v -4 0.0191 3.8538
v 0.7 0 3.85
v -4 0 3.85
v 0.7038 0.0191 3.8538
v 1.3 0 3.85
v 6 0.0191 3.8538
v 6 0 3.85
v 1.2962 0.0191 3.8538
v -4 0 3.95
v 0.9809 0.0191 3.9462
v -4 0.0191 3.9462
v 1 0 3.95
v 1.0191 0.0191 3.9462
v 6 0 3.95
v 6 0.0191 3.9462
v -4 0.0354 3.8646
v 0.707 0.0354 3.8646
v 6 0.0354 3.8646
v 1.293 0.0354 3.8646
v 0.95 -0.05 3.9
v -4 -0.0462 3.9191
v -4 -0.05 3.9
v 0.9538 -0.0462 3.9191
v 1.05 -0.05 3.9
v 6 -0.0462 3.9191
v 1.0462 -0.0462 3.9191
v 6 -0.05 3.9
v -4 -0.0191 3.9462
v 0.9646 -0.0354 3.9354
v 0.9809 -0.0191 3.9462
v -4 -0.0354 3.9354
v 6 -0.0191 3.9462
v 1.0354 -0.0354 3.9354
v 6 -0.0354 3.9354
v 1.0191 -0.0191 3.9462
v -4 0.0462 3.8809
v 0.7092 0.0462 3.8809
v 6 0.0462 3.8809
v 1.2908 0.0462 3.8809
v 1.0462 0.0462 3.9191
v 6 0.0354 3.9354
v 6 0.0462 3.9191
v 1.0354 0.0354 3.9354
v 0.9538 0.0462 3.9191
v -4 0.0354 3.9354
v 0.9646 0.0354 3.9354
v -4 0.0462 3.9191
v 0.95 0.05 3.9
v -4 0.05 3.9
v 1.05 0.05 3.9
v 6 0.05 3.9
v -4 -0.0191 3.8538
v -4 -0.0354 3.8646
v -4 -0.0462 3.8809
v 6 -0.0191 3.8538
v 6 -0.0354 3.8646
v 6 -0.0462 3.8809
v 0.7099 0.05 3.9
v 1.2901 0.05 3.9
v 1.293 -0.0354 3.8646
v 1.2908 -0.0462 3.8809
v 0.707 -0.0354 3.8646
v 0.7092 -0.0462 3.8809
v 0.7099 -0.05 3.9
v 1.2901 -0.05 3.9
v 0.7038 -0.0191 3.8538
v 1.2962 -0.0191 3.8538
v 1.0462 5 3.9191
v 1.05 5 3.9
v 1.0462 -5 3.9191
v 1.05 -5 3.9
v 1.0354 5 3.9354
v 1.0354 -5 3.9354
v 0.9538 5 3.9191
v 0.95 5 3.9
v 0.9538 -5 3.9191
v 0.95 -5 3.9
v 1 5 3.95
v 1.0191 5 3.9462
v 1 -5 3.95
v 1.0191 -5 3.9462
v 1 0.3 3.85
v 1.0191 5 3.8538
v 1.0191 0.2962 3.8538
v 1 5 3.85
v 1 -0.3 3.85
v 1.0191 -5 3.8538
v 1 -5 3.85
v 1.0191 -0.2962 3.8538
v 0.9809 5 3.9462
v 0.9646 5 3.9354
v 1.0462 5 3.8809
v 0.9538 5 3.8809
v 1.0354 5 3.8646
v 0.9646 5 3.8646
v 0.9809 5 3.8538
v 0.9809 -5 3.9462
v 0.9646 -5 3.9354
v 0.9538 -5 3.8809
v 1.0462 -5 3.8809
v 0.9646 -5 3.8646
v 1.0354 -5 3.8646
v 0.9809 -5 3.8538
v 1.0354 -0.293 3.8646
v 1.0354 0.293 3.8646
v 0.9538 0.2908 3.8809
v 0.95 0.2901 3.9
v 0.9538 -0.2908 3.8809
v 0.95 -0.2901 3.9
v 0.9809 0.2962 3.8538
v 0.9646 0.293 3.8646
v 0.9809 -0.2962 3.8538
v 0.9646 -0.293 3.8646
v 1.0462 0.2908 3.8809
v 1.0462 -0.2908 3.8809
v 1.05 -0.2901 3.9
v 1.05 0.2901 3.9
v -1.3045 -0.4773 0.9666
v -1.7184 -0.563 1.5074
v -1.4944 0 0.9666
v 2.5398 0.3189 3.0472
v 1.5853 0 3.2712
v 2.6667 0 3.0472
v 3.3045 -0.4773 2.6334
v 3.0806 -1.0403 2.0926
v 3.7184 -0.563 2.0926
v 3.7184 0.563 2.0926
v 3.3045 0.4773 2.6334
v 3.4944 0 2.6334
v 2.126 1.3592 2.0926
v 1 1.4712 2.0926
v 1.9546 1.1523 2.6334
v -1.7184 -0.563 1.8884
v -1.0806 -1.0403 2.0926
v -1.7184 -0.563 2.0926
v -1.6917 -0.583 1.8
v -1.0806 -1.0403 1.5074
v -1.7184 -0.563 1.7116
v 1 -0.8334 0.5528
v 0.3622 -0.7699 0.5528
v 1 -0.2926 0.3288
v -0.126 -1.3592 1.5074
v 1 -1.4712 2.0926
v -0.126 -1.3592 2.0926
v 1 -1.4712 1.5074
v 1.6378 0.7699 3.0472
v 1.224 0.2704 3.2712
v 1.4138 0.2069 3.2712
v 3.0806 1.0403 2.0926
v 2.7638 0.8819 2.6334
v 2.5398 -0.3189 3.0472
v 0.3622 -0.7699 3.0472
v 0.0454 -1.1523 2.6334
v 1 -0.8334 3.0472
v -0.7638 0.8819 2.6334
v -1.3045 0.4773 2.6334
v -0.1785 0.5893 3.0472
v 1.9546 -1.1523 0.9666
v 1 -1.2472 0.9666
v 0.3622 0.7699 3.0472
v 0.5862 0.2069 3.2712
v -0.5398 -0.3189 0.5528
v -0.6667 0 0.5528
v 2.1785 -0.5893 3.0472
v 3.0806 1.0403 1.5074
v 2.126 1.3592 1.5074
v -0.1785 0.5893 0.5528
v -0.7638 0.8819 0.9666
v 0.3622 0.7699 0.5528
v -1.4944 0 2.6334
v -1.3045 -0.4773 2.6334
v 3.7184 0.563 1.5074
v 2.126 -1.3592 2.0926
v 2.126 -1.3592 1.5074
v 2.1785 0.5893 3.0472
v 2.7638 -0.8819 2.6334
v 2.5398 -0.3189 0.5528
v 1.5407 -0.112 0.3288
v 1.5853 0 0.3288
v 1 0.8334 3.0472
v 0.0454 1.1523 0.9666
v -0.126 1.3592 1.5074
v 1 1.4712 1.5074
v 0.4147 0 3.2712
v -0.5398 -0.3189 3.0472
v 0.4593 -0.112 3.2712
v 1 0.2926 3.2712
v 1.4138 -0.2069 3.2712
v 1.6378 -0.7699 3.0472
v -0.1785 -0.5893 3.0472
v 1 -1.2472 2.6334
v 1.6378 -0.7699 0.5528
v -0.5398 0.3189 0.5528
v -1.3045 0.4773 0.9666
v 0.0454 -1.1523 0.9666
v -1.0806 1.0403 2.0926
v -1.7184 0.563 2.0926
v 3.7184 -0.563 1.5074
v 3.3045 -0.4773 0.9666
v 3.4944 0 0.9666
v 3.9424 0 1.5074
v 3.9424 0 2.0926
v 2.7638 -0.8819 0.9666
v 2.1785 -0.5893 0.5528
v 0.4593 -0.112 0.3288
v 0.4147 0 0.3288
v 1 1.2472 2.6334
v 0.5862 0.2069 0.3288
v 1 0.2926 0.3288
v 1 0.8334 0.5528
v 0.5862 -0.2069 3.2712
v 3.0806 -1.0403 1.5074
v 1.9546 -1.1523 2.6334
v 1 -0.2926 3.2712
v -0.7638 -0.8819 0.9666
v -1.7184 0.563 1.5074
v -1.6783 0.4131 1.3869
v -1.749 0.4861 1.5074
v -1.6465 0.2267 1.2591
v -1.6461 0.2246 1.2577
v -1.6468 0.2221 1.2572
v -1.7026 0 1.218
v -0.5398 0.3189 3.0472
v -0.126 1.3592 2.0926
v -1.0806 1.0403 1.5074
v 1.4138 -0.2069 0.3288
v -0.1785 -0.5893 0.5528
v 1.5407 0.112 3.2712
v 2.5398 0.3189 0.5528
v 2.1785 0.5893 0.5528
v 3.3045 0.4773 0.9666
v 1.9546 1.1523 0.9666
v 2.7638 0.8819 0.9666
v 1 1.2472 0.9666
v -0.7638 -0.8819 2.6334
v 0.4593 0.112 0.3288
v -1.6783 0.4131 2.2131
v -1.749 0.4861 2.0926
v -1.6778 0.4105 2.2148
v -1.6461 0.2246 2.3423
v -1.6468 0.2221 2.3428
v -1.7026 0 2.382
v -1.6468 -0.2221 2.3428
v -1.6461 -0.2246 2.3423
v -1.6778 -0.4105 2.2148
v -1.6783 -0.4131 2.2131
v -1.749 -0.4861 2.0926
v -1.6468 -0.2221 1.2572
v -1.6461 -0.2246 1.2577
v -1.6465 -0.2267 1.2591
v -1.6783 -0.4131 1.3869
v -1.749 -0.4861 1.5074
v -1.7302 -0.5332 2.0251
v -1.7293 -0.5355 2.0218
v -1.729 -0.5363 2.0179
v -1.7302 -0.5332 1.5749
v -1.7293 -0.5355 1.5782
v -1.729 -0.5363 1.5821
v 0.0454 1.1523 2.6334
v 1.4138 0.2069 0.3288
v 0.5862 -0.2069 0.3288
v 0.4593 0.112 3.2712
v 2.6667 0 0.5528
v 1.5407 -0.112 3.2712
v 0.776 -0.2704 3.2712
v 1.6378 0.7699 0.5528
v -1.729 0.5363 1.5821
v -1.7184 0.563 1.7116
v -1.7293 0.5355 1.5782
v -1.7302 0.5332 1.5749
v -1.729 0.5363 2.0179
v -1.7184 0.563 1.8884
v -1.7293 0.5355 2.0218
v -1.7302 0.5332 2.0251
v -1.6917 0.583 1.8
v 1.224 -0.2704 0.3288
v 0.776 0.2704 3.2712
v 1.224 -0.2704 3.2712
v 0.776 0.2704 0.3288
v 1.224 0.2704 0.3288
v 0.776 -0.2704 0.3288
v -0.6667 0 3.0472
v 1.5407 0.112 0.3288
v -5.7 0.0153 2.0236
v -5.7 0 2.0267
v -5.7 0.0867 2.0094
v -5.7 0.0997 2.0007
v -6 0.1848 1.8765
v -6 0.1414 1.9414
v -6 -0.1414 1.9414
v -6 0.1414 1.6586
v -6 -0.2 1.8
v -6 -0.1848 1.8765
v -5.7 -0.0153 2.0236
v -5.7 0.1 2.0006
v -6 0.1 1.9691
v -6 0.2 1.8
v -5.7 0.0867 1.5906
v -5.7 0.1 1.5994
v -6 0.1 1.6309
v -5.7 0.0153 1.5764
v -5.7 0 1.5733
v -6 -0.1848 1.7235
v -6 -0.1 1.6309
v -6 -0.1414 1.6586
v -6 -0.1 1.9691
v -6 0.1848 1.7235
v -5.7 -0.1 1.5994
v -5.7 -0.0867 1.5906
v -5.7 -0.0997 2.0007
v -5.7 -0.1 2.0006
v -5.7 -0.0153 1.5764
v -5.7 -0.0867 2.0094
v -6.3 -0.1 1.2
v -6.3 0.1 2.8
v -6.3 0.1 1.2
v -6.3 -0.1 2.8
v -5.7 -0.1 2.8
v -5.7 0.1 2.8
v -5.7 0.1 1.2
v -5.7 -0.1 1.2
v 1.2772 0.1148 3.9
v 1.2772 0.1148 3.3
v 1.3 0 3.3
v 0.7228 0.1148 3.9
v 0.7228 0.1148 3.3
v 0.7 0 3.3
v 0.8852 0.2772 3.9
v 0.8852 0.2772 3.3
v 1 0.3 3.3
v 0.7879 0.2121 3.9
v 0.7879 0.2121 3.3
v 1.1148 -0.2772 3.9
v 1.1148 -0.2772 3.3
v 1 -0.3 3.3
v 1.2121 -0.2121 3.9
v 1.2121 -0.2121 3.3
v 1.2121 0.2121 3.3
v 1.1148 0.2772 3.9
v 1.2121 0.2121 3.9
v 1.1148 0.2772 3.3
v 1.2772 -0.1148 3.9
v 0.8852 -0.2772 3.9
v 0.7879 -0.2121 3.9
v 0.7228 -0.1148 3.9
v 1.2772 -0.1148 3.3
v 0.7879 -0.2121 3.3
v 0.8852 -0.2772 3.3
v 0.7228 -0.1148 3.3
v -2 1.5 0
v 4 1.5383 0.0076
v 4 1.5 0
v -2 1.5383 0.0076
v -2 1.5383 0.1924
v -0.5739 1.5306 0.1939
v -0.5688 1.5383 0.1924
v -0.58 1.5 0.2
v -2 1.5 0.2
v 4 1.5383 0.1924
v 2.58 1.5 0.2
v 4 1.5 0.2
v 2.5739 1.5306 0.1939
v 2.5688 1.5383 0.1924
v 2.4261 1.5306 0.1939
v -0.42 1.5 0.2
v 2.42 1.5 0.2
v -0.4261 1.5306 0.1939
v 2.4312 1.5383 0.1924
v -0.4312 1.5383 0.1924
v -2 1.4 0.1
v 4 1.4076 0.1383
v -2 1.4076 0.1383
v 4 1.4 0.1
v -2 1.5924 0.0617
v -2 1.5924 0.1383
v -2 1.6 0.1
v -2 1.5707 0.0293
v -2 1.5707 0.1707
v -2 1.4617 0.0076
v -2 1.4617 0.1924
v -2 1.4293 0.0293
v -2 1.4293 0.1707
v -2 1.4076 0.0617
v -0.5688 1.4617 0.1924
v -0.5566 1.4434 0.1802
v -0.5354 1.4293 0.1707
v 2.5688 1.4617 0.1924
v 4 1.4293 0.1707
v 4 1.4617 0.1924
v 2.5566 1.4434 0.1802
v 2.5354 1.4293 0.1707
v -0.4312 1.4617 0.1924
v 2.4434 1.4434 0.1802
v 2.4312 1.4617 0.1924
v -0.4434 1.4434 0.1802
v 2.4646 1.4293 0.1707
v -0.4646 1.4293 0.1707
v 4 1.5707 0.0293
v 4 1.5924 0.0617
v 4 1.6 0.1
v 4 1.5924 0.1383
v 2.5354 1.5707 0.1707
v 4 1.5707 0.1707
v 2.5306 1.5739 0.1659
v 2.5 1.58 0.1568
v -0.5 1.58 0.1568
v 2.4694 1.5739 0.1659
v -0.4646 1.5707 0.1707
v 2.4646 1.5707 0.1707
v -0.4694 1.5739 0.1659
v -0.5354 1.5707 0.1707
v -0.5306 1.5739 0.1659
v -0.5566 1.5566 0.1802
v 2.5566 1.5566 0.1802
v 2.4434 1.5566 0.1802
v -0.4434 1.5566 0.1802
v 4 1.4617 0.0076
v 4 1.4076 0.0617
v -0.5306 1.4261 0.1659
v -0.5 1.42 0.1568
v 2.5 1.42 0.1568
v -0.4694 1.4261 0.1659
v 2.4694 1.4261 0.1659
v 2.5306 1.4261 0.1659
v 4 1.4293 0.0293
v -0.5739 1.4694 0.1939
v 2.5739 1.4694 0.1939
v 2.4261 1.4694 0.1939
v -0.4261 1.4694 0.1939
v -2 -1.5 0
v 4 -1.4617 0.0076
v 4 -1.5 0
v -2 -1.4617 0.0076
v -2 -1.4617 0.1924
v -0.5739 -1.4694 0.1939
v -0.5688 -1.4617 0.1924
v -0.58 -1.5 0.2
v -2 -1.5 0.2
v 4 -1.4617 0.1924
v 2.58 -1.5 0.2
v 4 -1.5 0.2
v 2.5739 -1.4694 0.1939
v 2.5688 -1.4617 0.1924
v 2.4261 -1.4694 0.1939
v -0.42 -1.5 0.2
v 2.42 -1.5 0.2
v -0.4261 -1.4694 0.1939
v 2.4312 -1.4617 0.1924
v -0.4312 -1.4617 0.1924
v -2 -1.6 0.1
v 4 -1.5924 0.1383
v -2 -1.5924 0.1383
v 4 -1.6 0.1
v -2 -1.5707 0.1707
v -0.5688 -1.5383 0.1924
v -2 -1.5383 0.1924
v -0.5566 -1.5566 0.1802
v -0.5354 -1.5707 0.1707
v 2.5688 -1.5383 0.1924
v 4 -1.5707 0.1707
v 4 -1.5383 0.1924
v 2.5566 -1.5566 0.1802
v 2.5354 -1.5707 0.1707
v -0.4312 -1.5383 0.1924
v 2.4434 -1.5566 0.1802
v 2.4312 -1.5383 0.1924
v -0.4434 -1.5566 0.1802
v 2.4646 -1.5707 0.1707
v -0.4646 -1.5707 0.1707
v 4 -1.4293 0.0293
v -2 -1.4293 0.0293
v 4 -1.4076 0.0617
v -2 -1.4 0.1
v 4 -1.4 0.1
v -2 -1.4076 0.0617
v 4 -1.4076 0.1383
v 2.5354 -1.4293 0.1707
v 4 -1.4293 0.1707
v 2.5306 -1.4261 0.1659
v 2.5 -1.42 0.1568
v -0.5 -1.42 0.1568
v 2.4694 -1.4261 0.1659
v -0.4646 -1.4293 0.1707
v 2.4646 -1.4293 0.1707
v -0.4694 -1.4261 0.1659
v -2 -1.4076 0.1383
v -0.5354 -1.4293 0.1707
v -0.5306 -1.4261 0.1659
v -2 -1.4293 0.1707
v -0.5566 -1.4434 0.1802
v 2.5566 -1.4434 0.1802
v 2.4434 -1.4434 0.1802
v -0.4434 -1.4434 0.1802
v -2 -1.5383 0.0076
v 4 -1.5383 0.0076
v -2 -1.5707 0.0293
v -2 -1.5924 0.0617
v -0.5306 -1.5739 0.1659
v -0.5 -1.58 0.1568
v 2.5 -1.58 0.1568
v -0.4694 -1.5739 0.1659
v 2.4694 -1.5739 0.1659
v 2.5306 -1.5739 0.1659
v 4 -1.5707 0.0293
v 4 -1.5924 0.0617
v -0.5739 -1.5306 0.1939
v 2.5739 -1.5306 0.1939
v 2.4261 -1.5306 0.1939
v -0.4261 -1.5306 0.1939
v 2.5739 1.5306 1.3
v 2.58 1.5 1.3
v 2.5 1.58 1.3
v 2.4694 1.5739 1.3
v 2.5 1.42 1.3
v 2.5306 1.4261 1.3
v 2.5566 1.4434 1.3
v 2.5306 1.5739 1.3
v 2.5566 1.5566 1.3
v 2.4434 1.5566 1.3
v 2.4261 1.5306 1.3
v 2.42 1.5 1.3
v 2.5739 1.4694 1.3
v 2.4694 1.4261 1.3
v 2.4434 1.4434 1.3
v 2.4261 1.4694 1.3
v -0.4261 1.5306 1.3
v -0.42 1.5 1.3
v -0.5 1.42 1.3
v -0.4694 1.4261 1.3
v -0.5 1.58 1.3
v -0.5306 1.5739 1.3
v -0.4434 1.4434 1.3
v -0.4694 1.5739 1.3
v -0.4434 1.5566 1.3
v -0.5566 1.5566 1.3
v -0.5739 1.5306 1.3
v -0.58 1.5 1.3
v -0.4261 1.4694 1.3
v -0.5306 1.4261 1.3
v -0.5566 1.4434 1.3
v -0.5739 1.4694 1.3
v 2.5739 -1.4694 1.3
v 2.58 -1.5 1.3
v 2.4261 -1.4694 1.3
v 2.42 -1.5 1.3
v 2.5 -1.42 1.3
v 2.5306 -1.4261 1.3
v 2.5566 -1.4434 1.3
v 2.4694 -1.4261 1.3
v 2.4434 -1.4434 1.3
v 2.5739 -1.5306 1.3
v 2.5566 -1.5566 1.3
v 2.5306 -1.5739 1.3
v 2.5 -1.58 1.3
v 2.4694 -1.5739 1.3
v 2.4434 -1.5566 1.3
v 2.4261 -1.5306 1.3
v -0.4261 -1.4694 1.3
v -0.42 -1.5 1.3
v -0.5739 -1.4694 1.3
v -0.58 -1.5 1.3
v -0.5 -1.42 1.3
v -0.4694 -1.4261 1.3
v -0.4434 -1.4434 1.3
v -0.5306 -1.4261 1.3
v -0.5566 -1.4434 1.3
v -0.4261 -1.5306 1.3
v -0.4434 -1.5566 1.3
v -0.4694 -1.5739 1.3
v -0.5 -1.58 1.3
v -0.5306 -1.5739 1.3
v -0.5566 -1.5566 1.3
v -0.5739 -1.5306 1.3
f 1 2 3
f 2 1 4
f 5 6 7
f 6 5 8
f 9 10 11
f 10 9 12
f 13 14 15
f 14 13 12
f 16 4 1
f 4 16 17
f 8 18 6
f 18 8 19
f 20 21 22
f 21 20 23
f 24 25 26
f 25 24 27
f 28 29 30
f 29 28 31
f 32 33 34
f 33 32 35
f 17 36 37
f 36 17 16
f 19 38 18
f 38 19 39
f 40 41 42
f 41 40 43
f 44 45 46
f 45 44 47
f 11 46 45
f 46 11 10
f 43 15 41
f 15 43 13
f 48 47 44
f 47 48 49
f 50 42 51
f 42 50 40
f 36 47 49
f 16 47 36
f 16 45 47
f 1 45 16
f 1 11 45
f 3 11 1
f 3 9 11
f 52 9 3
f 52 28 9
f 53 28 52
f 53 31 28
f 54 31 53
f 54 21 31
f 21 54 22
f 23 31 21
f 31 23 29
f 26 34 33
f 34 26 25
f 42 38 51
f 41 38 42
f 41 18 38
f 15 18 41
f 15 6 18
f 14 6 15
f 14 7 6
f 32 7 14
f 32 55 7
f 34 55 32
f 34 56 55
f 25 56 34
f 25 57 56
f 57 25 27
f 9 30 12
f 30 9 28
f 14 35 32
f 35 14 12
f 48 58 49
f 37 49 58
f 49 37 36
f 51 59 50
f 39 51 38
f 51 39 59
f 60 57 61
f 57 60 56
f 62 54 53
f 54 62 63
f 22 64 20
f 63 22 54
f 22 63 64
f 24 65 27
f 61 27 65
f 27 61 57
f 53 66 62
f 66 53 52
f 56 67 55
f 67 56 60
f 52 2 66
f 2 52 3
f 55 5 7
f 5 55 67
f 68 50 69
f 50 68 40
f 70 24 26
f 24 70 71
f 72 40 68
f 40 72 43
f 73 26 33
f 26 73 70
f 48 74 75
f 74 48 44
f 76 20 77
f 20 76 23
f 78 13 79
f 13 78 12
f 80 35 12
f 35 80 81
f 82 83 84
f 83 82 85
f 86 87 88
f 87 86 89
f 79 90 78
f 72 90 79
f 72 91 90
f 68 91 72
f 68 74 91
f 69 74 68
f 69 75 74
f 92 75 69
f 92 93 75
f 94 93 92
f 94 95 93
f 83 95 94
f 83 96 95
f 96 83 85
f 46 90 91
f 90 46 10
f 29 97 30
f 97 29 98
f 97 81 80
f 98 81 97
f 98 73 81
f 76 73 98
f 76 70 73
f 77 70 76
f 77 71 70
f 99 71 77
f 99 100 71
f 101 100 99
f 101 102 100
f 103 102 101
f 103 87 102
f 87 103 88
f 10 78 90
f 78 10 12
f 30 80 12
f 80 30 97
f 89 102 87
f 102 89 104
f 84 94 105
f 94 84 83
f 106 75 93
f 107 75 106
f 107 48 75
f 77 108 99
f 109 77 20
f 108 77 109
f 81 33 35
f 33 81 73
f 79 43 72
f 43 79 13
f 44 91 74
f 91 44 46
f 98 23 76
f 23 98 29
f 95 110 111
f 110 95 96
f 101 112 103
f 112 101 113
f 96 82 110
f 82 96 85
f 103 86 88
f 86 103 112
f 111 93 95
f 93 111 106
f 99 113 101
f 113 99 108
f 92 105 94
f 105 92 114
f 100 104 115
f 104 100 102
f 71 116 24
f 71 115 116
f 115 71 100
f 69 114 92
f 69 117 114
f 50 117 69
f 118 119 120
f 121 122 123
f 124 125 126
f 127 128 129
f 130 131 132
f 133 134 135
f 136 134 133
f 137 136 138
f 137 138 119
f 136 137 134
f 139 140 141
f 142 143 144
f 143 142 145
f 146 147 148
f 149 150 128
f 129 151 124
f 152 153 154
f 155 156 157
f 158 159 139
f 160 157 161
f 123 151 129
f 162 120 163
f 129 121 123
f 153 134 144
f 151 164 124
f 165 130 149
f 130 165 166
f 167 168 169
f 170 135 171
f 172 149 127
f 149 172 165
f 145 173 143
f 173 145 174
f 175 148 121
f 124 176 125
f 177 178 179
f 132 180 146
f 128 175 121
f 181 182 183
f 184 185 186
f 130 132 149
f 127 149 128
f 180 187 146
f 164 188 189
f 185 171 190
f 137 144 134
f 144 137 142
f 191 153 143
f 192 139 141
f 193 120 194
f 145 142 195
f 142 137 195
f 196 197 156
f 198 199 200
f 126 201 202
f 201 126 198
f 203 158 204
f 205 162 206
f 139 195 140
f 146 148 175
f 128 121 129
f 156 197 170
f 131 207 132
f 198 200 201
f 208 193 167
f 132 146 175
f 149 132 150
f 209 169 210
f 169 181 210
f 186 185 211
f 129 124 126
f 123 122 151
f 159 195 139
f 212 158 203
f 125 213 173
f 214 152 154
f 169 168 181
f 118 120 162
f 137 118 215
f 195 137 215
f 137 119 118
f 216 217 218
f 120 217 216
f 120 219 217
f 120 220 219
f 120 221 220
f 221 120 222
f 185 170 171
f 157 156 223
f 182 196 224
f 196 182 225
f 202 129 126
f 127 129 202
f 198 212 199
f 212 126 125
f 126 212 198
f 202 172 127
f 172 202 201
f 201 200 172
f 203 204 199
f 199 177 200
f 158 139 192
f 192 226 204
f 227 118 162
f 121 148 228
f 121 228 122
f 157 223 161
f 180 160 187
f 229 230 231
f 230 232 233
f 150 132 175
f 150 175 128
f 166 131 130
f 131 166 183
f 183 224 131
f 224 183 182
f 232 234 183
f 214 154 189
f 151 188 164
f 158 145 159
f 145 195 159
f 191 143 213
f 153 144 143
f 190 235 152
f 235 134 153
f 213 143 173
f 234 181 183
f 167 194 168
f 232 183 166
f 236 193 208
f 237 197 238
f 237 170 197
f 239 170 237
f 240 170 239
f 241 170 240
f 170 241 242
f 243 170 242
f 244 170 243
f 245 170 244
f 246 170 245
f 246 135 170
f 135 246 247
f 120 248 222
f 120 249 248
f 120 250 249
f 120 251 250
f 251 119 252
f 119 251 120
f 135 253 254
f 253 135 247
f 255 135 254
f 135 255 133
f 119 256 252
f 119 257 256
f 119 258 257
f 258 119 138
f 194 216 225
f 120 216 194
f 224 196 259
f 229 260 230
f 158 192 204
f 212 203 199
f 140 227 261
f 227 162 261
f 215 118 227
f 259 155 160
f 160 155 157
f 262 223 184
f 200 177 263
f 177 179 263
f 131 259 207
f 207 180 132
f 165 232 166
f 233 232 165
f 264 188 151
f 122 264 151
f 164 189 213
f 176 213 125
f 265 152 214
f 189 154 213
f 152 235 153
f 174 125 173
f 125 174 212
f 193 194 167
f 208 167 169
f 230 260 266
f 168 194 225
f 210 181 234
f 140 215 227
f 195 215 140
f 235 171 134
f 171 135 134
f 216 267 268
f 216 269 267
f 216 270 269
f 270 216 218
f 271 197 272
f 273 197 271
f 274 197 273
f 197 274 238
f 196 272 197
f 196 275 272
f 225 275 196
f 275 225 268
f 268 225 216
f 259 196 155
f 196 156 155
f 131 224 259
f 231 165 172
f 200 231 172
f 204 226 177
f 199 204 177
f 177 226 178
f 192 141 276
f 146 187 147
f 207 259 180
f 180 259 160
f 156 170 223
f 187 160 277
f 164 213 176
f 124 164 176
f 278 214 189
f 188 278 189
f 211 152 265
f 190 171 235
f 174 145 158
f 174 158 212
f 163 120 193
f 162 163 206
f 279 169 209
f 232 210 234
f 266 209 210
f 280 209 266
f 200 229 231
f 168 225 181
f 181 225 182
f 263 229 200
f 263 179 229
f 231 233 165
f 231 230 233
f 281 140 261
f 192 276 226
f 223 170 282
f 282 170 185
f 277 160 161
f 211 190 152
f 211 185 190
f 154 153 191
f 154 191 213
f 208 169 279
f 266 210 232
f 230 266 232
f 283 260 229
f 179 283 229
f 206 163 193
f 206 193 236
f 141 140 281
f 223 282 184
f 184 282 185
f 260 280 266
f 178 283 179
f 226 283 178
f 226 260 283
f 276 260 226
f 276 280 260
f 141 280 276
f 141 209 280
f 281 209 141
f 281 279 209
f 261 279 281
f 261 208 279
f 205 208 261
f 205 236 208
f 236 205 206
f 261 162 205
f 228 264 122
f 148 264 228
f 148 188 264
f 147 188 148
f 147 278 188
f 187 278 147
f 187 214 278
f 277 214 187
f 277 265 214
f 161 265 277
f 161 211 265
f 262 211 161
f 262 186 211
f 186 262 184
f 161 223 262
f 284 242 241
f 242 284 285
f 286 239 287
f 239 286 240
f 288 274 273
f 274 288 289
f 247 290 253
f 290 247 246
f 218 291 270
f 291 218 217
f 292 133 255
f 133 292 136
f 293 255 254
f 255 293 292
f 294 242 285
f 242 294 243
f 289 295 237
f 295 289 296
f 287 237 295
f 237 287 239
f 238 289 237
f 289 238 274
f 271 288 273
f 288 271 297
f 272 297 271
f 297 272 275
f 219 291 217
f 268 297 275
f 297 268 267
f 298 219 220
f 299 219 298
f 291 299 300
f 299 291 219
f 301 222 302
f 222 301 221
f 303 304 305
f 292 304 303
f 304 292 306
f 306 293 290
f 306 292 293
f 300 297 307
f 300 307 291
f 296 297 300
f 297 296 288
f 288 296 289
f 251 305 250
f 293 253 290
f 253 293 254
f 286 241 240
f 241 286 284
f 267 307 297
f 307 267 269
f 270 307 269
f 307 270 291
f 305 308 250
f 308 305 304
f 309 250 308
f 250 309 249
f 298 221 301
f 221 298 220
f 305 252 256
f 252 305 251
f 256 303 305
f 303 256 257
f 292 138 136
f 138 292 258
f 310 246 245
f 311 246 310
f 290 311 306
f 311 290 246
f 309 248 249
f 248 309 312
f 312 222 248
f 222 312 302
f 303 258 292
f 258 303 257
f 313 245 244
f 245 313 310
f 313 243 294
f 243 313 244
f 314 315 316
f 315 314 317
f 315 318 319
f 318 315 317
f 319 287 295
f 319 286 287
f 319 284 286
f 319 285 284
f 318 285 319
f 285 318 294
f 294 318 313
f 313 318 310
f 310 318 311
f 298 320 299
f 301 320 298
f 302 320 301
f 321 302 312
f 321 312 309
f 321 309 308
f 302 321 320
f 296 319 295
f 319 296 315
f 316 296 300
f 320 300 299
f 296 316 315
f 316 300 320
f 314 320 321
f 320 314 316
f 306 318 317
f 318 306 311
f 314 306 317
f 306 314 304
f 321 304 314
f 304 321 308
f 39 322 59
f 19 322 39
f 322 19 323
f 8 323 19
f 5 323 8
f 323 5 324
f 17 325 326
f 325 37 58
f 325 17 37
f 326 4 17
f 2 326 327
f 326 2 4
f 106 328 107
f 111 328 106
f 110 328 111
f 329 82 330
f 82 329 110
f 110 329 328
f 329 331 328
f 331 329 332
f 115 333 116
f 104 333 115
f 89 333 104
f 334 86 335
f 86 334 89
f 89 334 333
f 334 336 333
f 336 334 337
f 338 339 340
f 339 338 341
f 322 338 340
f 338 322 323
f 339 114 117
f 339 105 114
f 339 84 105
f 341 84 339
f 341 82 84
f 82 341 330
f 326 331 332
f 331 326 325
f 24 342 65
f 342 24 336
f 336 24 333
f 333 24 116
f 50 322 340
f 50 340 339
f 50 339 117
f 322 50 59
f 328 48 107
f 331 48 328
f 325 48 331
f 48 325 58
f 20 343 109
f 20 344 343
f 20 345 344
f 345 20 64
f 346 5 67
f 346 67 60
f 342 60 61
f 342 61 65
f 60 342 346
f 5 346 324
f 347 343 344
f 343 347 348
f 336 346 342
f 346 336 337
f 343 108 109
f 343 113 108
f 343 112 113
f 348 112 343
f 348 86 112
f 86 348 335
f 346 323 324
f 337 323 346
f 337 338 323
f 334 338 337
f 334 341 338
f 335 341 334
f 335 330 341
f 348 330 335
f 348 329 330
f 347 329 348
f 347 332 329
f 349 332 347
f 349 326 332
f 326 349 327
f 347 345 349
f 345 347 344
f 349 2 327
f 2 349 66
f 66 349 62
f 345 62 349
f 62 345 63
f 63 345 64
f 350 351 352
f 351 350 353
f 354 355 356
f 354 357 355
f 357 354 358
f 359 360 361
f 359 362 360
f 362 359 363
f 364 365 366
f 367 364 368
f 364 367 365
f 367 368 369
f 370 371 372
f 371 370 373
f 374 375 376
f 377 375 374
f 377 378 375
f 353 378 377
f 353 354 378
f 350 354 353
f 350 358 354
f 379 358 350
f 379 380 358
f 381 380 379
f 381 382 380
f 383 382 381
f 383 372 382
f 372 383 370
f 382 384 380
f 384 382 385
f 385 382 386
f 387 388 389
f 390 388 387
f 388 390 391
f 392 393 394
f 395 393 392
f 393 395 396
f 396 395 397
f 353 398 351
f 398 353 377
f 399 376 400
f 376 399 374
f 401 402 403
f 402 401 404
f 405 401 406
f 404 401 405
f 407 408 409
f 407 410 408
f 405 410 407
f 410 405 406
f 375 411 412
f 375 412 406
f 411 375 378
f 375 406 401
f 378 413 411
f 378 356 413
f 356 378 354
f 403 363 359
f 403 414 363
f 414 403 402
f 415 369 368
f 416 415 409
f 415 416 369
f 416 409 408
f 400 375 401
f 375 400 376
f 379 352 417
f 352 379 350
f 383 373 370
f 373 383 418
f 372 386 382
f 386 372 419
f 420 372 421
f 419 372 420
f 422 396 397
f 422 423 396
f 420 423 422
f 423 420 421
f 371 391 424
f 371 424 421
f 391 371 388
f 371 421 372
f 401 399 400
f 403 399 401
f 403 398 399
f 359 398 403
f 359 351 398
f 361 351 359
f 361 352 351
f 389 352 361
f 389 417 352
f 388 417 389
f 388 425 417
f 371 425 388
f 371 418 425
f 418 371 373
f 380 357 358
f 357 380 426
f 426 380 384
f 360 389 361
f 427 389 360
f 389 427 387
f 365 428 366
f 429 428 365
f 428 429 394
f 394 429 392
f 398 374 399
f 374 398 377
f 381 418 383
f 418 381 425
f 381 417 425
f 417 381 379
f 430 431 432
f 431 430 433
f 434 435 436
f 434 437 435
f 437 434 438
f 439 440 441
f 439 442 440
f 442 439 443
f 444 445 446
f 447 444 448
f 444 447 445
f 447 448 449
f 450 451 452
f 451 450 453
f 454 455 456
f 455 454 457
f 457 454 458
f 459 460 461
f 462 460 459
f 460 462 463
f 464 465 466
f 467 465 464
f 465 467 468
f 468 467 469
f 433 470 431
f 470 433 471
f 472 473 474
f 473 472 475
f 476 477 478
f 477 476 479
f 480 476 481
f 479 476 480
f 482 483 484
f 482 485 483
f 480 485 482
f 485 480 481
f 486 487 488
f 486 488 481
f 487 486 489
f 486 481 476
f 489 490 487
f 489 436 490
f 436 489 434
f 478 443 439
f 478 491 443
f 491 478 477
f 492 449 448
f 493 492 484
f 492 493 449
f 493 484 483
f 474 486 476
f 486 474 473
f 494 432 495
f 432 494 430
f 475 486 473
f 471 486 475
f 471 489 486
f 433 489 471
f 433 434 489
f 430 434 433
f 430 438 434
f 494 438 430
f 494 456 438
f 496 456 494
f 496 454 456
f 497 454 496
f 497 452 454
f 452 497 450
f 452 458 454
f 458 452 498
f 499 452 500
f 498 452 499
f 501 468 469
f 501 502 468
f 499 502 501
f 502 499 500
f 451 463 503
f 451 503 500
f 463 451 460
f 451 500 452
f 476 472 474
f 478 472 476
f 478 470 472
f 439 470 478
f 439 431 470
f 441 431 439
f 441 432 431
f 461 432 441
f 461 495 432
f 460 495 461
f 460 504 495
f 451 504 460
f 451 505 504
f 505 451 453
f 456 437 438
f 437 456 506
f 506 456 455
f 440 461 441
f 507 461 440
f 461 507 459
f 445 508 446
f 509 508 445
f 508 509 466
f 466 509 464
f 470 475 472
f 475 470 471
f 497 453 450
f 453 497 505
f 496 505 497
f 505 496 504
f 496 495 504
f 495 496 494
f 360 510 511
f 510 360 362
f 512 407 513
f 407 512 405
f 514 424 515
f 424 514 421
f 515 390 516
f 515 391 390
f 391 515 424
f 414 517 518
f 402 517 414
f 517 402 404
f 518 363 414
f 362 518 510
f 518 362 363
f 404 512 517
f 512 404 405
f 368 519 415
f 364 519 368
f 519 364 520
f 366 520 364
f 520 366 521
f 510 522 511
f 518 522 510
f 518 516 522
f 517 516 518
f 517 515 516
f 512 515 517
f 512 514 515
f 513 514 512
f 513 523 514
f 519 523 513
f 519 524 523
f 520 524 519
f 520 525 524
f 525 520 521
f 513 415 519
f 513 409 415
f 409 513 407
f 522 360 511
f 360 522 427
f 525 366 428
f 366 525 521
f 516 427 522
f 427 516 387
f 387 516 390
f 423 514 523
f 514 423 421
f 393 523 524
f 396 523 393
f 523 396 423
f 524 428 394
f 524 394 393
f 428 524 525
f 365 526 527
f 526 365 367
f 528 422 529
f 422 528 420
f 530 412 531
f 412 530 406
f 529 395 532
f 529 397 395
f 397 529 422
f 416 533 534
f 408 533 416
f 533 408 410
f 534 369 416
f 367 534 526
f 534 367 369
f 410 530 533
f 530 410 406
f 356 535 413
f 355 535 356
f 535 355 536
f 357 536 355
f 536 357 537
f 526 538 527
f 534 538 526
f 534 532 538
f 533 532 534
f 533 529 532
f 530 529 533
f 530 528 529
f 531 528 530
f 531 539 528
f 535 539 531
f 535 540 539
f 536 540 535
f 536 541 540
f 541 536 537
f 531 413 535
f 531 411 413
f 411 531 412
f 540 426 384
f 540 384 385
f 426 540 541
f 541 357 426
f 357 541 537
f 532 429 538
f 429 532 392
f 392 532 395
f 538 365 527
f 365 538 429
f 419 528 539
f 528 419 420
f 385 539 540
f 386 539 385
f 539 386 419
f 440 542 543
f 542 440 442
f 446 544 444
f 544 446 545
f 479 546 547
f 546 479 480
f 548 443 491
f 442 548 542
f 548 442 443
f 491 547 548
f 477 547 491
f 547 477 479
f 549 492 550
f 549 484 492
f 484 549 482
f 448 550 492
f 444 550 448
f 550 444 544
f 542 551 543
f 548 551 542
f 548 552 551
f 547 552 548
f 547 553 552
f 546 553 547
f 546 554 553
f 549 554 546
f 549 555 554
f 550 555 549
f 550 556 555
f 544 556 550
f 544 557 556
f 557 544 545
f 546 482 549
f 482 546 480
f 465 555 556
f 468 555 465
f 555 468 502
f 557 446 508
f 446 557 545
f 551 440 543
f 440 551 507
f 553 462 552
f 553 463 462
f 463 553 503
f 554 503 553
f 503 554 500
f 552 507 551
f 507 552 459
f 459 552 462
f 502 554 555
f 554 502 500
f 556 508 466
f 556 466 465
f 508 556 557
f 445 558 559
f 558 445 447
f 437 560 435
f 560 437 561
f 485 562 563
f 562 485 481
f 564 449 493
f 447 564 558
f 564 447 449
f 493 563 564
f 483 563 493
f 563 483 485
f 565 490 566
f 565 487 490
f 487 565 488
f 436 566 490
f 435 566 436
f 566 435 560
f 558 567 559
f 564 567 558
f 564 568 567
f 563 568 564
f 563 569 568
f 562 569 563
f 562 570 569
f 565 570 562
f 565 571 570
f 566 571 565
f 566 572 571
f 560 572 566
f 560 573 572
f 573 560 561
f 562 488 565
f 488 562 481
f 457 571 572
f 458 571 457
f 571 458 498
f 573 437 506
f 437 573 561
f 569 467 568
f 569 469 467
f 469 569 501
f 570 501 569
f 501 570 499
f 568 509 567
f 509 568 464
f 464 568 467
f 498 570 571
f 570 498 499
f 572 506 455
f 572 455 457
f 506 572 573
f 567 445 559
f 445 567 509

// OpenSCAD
// Low-Poly Civilian Transport Helicopter

$fn = 16;

module civilian_helicopter() {
    // Cabin
    translate([1, 0, 1.8])
        scale([3, 1.5, 1.5])
            sphere(r=1);

    // Tail
    translate([-1.5, 0, 1.8])
        rotate([0, -90, 0])
            cylinder(h=4.5, r1=0.6, r2=0.2);

    translate([-6, 0, 1.8]) {
        // Vertical Tail Fin
        translate([-0.3, -0.1, -0.6])
            cube([0.6, 0.2, 1.6]);
    }

    // Rotor
    translate([1, 0, 3.3])
        cylinder(h=0.6, r=0.3);

    translate([1, 0, 3.9]) {
        rotate([0, 90, 0])
            cylinder(h=10, r=0.05, center=true);
        rotate([90, 0, 0])
            cylinder(h=10, r=0.05, center=true);
    }

    // Skids 
    // Left
    translate([1, 1.5, 0.1])
        rotate([0, 90, 0])
            cylinder(h=6, r=0.1, center=true);
    // Right
    translate([1, -1.5, 0.1])
        rotate([0, 90, 0])
            cylinder(h=6, r=0.1, center=true);

    // Skid Struts
    translate([2.5, 1.5, 0.1]) cylinder(h=1.2, r=0.08);
    translate([-0.5, 1.5, 0.1]) cylinder(h=1.2, r=0.08);
    
    translate([2.5, -1.5, 0.1]) cylinder(h=1.2, r=0.08);
    translate([-0.5, -1.5, 0.1]) cylinder(h=1.2, r=0.08);
}

civilian_helicopter();
